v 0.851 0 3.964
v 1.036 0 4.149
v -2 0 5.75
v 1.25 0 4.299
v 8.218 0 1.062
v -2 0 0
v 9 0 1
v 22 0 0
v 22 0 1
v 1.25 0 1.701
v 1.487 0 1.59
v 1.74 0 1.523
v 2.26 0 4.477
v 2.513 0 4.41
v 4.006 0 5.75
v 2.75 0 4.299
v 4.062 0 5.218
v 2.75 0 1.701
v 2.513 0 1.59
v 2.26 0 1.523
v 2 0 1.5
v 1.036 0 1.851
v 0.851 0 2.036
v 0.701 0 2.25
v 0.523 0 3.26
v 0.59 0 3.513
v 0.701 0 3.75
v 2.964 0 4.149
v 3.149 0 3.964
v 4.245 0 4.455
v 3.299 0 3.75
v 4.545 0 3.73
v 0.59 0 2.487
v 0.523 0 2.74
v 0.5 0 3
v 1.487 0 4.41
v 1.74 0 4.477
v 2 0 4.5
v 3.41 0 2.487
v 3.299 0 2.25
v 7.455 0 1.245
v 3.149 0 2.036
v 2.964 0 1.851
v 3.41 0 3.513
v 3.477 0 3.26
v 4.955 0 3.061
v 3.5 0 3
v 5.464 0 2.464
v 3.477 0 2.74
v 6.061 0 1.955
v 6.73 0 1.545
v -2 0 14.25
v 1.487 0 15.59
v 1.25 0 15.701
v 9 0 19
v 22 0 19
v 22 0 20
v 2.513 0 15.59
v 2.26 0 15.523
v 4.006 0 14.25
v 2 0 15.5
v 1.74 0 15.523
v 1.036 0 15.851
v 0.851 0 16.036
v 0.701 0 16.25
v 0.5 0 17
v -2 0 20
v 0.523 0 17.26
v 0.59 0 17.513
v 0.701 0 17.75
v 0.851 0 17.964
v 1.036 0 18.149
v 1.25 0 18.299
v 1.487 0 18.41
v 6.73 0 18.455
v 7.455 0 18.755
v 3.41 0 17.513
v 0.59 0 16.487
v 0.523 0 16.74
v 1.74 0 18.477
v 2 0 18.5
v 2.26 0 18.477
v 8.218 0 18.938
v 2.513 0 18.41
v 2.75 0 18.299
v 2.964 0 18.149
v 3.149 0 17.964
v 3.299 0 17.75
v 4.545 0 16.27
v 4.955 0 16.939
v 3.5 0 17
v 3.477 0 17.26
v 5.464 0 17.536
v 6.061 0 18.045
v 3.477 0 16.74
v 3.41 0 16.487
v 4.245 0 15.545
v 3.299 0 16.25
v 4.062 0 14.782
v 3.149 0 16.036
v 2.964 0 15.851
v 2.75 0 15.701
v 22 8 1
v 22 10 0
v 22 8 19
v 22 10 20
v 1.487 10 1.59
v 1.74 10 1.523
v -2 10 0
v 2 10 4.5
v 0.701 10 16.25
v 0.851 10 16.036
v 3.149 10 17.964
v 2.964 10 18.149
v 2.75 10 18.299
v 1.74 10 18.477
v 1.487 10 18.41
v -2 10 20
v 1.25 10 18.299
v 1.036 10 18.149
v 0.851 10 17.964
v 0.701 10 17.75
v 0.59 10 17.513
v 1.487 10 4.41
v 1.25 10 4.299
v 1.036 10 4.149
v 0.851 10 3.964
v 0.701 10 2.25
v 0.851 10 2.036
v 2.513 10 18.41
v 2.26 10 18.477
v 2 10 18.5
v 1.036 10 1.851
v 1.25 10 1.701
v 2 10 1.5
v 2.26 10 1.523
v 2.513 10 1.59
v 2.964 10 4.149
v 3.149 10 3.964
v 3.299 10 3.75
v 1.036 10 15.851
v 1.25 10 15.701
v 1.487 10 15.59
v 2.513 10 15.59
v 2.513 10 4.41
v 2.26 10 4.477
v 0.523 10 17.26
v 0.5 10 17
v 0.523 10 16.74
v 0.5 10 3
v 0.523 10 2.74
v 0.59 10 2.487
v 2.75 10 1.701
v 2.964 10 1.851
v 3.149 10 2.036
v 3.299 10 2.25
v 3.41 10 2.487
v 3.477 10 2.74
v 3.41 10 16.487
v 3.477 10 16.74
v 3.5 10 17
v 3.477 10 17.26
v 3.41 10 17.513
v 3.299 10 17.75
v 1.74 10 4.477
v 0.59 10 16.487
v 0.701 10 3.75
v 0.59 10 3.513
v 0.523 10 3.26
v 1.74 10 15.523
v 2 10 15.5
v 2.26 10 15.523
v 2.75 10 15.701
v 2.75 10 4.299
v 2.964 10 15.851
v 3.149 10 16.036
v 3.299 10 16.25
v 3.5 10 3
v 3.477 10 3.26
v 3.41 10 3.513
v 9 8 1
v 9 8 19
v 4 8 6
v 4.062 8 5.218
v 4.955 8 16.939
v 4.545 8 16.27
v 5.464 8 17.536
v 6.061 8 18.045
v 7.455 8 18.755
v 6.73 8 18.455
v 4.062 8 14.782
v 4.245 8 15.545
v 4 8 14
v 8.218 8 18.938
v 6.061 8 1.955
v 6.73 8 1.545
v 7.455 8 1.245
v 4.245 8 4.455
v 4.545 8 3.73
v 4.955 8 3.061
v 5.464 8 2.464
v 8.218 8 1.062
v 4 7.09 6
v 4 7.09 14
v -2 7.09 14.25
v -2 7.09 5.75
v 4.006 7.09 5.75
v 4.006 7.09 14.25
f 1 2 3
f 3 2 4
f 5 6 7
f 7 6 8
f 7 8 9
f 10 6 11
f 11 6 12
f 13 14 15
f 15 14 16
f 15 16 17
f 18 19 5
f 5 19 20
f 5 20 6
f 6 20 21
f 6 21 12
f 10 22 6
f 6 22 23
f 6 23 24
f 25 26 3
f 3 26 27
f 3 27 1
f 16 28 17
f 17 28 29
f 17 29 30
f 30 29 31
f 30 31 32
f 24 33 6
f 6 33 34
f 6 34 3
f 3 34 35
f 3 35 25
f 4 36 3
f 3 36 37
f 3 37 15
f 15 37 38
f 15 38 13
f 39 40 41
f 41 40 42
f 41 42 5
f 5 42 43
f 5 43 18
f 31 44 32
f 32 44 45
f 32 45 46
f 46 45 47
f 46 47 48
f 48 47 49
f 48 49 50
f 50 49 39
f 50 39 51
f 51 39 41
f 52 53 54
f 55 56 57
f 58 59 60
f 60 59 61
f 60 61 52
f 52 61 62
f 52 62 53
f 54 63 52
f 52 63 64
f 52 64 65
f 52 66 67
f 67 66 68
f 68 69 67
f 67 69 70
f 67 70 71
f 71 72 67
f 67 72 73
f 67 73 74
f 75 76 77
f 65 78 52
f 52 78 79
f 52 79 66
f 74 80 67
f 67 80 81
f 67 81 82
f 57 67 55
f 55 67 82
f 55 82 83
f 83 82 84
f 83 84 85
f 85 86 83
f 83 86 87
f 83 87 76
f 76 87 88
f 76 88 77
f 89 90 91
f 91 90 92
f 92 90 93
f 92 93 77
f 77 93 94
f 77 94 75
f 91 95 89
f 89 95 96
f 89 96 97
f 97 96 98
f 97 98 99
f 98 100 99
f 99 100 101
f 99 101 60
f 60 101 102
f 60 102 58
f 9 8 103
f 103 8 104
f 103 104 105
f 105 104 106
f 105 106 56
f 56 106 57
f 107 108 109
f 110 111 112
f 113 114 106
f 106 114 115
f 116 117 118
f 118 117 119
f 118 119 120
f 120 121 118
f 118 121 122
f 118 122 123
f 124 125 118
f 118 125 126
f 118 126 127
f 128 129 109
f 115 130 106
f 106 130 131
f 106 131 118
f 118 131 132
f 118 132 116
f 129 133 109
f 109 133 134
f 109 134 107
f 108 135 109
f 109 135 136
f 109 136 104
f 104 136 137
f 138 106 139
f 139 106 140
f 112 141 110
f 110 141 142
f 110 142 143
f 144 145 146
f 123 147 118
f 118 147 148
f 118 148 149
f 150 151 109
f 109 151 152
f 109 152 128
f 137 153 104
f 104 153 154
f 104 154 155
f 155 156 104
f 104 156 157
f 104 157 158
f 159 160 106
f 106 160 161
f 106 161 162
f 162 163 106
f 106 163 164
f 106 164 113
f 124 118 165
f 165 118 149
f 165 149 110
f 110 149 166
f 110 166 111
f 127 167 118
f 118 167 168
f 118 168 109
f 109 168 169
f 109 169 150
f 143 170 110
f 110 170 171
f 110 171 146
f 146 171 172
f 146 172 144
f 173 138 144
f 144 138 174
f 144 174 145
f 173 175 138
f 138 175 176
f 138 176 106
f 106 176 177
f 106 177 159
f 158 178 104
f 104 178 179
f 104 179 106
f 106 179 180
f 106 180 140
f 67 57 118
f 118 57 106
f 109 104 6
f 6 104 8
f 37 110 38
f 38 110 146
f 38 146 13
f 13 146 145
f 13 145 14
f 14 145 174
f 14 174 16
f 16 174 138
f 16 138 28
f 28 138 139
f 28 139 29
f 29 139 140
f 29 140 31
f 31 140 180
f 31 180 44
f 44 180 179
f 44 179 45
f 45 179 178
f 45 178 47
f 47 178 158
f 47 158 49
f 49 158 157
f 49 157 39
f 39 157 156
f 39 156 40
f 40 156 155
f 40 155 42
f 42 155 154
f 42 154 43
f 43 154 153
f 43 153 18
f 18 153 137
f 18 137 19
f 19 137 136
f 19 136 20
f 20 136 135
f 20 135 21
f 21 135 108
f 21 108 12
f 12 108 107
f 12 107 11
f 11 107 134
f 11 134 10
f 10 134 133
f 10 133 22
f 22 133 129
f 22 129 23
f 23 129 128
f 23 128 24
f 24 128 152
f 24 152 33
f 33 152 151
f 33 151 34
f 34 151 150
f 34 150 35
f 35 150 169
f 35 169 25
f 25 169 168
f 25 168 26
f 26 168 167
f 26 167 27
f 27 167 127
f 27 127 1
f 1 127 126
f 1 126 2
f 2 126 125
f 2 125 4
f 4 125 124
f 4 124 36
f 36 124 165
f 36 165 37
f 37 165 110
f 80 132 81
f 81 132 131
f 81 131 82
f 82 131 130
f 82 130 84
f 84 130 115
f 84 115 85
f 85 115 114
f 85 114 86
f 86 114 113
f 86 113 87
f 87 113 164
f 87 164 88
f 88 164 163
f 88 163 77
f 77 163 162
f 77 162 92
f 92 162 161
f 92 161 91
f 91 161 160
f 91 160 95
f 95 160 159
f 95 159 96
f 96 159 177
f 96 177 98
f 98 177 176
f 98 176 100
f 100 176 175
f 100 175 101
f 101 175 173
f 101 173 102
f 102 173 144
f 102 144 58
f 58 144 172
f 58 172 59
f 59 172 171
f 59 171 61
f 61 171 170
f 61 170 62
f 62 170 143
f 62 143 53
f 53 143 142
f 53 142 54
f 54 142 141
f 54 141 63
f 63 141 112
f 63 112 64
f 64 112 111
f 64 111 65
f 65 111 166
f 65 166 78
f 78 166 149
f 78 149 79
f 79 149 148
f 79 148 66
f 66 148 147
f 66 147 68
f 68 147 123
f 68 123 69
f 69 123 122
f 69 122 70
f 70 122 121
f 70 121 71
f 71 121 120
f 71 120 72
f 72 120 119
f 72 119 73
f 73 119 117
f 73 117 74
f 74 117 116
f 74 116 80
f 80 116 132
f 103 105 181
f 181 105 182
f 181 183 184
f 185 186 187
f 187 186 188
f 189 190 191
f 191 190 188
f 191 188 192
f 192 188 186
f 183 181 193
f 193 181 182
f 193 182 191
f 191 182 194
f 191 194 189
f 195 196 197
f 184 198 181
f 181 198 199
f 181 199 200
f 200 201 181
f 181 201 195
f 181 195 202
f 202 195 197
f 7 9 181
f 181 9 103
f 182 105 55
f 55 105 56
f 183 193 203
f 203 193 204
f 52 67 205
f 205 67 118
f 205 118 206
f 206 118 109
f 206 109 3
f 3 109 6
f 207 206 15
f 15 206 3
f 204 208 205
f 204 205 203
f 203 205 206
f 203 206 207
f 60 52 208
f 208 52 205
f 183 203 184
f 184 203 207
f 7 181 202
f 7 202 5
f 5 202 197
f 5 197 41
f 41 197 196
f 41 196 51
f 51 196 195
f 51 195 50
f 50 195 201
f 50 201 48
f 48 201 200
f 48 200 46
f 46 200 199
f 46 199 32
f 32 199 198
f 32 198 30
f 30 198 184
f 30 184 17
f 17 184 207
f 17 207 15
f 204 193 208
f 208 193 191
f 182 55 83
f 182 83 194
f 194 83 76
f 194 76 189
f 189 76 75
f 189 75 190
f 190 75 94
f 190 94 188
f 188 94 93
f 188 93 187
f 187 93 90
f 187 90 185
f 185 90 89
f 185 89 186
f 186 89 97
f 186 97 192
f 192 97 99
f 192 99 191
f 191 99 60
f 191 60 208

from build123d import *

# Parameters (mm, degrees)
ESQUISSE1_W             = 22
ESQUISSE1_H             = 10
BOSS_EXTRU_1_DEPTH      = 20
ESQUISSE2_R             = 1.5
ENL_V_MAT_EXTRU_1_DEPTH = 20
ESQUISSE4_W             = 18
ESQUISSE4_H             = 8
ENL_V_MAT_EXTRU_6_DEPTH = 18
ESQUISSE5_W             = 20
ESQUISSE5_H             = 10
BOSS_EXTRU_2_DEPTH      = 2
ESQUISSE6_W             = 8.5
ESQUISSE6_H             = 7.090406213
ENL_V_MAT_EXTRU_7_DEPTH = 8
CONG_1_R                = 5


with BuildPart() as part:
    # Esquisse1 → Boss.-Extru.1 (new body)
    with BuildSketch(Plane.XY):
        with Locations((11, 5)):
            Rectangle(ESQUISSE1_W, ESQUISSE1_H)
    extrude(amount=BOSS_EXTRU_1_DEPTH)

    # Esquisse2 → Enlèv. mat.-Extru.1 (cut)
    with BuildSketch(Plane(origin=(0, 10, 0), x_dir=(1, 0, 0), z_dir=(0, 1, 0))):
        with Locations((2, -3)):
            Circle(ESQUISSE2_R)
        with Locations((2, -17)):
            Circle(ESQUISSE2_R)
    extrude(amount=-ENL_V_MAT_EXTRU_1_DEPTH, mode=Mode.SUBTRACT)

    # Esquisse4 → Enlèv. mat.-Extru.6 (cut)
    with BuildSketch(Plane(origin=(22, 0, 0), x_dir=(0, 0, -1), z_dir=(1, 0, 0))):
        with Locations((-10, 4)):
            Rectangle(ESQUISSE4_W, ESQUISSE4_H)
    extrude(amount=-ENL_V_MAT_EXTRU_6_DEPTH, mode=Mode.SUBTRACT)

    # Esquisse5 → Boss.-Extru.2 (add)
    with BuildSketch(Plane.ZY):
        with Locations((10, 5)):
            Rectangle(ESQUISSE5_W, ESQUISSE5_H)
    extrude(amount=BOSS_EXTRU_2_DEPTH)

    # Esquisse6 → Enlèv. mat.-Extru.7 (cut)
    with BuildSketch(Plane.ZY.offset(2)):
        with Locations((10, 3.545203107)):
            Rectangle(ESQUISSE6_W, ESQUISSE6_H)
    extrude(amount=-ENL_V_MAT_EXTRU_7_DEPTH, mode=Mode.SUBTRACT)

    # Congé1
    cong_1_edges = [part.edges().sort_by_distance(p)[0] for p in [
        (4, 4, 1),
        (4, 4, 19),
    ]]
    fillet(cong_1_edges, radius=CONG_1_R)


solid = part.part
